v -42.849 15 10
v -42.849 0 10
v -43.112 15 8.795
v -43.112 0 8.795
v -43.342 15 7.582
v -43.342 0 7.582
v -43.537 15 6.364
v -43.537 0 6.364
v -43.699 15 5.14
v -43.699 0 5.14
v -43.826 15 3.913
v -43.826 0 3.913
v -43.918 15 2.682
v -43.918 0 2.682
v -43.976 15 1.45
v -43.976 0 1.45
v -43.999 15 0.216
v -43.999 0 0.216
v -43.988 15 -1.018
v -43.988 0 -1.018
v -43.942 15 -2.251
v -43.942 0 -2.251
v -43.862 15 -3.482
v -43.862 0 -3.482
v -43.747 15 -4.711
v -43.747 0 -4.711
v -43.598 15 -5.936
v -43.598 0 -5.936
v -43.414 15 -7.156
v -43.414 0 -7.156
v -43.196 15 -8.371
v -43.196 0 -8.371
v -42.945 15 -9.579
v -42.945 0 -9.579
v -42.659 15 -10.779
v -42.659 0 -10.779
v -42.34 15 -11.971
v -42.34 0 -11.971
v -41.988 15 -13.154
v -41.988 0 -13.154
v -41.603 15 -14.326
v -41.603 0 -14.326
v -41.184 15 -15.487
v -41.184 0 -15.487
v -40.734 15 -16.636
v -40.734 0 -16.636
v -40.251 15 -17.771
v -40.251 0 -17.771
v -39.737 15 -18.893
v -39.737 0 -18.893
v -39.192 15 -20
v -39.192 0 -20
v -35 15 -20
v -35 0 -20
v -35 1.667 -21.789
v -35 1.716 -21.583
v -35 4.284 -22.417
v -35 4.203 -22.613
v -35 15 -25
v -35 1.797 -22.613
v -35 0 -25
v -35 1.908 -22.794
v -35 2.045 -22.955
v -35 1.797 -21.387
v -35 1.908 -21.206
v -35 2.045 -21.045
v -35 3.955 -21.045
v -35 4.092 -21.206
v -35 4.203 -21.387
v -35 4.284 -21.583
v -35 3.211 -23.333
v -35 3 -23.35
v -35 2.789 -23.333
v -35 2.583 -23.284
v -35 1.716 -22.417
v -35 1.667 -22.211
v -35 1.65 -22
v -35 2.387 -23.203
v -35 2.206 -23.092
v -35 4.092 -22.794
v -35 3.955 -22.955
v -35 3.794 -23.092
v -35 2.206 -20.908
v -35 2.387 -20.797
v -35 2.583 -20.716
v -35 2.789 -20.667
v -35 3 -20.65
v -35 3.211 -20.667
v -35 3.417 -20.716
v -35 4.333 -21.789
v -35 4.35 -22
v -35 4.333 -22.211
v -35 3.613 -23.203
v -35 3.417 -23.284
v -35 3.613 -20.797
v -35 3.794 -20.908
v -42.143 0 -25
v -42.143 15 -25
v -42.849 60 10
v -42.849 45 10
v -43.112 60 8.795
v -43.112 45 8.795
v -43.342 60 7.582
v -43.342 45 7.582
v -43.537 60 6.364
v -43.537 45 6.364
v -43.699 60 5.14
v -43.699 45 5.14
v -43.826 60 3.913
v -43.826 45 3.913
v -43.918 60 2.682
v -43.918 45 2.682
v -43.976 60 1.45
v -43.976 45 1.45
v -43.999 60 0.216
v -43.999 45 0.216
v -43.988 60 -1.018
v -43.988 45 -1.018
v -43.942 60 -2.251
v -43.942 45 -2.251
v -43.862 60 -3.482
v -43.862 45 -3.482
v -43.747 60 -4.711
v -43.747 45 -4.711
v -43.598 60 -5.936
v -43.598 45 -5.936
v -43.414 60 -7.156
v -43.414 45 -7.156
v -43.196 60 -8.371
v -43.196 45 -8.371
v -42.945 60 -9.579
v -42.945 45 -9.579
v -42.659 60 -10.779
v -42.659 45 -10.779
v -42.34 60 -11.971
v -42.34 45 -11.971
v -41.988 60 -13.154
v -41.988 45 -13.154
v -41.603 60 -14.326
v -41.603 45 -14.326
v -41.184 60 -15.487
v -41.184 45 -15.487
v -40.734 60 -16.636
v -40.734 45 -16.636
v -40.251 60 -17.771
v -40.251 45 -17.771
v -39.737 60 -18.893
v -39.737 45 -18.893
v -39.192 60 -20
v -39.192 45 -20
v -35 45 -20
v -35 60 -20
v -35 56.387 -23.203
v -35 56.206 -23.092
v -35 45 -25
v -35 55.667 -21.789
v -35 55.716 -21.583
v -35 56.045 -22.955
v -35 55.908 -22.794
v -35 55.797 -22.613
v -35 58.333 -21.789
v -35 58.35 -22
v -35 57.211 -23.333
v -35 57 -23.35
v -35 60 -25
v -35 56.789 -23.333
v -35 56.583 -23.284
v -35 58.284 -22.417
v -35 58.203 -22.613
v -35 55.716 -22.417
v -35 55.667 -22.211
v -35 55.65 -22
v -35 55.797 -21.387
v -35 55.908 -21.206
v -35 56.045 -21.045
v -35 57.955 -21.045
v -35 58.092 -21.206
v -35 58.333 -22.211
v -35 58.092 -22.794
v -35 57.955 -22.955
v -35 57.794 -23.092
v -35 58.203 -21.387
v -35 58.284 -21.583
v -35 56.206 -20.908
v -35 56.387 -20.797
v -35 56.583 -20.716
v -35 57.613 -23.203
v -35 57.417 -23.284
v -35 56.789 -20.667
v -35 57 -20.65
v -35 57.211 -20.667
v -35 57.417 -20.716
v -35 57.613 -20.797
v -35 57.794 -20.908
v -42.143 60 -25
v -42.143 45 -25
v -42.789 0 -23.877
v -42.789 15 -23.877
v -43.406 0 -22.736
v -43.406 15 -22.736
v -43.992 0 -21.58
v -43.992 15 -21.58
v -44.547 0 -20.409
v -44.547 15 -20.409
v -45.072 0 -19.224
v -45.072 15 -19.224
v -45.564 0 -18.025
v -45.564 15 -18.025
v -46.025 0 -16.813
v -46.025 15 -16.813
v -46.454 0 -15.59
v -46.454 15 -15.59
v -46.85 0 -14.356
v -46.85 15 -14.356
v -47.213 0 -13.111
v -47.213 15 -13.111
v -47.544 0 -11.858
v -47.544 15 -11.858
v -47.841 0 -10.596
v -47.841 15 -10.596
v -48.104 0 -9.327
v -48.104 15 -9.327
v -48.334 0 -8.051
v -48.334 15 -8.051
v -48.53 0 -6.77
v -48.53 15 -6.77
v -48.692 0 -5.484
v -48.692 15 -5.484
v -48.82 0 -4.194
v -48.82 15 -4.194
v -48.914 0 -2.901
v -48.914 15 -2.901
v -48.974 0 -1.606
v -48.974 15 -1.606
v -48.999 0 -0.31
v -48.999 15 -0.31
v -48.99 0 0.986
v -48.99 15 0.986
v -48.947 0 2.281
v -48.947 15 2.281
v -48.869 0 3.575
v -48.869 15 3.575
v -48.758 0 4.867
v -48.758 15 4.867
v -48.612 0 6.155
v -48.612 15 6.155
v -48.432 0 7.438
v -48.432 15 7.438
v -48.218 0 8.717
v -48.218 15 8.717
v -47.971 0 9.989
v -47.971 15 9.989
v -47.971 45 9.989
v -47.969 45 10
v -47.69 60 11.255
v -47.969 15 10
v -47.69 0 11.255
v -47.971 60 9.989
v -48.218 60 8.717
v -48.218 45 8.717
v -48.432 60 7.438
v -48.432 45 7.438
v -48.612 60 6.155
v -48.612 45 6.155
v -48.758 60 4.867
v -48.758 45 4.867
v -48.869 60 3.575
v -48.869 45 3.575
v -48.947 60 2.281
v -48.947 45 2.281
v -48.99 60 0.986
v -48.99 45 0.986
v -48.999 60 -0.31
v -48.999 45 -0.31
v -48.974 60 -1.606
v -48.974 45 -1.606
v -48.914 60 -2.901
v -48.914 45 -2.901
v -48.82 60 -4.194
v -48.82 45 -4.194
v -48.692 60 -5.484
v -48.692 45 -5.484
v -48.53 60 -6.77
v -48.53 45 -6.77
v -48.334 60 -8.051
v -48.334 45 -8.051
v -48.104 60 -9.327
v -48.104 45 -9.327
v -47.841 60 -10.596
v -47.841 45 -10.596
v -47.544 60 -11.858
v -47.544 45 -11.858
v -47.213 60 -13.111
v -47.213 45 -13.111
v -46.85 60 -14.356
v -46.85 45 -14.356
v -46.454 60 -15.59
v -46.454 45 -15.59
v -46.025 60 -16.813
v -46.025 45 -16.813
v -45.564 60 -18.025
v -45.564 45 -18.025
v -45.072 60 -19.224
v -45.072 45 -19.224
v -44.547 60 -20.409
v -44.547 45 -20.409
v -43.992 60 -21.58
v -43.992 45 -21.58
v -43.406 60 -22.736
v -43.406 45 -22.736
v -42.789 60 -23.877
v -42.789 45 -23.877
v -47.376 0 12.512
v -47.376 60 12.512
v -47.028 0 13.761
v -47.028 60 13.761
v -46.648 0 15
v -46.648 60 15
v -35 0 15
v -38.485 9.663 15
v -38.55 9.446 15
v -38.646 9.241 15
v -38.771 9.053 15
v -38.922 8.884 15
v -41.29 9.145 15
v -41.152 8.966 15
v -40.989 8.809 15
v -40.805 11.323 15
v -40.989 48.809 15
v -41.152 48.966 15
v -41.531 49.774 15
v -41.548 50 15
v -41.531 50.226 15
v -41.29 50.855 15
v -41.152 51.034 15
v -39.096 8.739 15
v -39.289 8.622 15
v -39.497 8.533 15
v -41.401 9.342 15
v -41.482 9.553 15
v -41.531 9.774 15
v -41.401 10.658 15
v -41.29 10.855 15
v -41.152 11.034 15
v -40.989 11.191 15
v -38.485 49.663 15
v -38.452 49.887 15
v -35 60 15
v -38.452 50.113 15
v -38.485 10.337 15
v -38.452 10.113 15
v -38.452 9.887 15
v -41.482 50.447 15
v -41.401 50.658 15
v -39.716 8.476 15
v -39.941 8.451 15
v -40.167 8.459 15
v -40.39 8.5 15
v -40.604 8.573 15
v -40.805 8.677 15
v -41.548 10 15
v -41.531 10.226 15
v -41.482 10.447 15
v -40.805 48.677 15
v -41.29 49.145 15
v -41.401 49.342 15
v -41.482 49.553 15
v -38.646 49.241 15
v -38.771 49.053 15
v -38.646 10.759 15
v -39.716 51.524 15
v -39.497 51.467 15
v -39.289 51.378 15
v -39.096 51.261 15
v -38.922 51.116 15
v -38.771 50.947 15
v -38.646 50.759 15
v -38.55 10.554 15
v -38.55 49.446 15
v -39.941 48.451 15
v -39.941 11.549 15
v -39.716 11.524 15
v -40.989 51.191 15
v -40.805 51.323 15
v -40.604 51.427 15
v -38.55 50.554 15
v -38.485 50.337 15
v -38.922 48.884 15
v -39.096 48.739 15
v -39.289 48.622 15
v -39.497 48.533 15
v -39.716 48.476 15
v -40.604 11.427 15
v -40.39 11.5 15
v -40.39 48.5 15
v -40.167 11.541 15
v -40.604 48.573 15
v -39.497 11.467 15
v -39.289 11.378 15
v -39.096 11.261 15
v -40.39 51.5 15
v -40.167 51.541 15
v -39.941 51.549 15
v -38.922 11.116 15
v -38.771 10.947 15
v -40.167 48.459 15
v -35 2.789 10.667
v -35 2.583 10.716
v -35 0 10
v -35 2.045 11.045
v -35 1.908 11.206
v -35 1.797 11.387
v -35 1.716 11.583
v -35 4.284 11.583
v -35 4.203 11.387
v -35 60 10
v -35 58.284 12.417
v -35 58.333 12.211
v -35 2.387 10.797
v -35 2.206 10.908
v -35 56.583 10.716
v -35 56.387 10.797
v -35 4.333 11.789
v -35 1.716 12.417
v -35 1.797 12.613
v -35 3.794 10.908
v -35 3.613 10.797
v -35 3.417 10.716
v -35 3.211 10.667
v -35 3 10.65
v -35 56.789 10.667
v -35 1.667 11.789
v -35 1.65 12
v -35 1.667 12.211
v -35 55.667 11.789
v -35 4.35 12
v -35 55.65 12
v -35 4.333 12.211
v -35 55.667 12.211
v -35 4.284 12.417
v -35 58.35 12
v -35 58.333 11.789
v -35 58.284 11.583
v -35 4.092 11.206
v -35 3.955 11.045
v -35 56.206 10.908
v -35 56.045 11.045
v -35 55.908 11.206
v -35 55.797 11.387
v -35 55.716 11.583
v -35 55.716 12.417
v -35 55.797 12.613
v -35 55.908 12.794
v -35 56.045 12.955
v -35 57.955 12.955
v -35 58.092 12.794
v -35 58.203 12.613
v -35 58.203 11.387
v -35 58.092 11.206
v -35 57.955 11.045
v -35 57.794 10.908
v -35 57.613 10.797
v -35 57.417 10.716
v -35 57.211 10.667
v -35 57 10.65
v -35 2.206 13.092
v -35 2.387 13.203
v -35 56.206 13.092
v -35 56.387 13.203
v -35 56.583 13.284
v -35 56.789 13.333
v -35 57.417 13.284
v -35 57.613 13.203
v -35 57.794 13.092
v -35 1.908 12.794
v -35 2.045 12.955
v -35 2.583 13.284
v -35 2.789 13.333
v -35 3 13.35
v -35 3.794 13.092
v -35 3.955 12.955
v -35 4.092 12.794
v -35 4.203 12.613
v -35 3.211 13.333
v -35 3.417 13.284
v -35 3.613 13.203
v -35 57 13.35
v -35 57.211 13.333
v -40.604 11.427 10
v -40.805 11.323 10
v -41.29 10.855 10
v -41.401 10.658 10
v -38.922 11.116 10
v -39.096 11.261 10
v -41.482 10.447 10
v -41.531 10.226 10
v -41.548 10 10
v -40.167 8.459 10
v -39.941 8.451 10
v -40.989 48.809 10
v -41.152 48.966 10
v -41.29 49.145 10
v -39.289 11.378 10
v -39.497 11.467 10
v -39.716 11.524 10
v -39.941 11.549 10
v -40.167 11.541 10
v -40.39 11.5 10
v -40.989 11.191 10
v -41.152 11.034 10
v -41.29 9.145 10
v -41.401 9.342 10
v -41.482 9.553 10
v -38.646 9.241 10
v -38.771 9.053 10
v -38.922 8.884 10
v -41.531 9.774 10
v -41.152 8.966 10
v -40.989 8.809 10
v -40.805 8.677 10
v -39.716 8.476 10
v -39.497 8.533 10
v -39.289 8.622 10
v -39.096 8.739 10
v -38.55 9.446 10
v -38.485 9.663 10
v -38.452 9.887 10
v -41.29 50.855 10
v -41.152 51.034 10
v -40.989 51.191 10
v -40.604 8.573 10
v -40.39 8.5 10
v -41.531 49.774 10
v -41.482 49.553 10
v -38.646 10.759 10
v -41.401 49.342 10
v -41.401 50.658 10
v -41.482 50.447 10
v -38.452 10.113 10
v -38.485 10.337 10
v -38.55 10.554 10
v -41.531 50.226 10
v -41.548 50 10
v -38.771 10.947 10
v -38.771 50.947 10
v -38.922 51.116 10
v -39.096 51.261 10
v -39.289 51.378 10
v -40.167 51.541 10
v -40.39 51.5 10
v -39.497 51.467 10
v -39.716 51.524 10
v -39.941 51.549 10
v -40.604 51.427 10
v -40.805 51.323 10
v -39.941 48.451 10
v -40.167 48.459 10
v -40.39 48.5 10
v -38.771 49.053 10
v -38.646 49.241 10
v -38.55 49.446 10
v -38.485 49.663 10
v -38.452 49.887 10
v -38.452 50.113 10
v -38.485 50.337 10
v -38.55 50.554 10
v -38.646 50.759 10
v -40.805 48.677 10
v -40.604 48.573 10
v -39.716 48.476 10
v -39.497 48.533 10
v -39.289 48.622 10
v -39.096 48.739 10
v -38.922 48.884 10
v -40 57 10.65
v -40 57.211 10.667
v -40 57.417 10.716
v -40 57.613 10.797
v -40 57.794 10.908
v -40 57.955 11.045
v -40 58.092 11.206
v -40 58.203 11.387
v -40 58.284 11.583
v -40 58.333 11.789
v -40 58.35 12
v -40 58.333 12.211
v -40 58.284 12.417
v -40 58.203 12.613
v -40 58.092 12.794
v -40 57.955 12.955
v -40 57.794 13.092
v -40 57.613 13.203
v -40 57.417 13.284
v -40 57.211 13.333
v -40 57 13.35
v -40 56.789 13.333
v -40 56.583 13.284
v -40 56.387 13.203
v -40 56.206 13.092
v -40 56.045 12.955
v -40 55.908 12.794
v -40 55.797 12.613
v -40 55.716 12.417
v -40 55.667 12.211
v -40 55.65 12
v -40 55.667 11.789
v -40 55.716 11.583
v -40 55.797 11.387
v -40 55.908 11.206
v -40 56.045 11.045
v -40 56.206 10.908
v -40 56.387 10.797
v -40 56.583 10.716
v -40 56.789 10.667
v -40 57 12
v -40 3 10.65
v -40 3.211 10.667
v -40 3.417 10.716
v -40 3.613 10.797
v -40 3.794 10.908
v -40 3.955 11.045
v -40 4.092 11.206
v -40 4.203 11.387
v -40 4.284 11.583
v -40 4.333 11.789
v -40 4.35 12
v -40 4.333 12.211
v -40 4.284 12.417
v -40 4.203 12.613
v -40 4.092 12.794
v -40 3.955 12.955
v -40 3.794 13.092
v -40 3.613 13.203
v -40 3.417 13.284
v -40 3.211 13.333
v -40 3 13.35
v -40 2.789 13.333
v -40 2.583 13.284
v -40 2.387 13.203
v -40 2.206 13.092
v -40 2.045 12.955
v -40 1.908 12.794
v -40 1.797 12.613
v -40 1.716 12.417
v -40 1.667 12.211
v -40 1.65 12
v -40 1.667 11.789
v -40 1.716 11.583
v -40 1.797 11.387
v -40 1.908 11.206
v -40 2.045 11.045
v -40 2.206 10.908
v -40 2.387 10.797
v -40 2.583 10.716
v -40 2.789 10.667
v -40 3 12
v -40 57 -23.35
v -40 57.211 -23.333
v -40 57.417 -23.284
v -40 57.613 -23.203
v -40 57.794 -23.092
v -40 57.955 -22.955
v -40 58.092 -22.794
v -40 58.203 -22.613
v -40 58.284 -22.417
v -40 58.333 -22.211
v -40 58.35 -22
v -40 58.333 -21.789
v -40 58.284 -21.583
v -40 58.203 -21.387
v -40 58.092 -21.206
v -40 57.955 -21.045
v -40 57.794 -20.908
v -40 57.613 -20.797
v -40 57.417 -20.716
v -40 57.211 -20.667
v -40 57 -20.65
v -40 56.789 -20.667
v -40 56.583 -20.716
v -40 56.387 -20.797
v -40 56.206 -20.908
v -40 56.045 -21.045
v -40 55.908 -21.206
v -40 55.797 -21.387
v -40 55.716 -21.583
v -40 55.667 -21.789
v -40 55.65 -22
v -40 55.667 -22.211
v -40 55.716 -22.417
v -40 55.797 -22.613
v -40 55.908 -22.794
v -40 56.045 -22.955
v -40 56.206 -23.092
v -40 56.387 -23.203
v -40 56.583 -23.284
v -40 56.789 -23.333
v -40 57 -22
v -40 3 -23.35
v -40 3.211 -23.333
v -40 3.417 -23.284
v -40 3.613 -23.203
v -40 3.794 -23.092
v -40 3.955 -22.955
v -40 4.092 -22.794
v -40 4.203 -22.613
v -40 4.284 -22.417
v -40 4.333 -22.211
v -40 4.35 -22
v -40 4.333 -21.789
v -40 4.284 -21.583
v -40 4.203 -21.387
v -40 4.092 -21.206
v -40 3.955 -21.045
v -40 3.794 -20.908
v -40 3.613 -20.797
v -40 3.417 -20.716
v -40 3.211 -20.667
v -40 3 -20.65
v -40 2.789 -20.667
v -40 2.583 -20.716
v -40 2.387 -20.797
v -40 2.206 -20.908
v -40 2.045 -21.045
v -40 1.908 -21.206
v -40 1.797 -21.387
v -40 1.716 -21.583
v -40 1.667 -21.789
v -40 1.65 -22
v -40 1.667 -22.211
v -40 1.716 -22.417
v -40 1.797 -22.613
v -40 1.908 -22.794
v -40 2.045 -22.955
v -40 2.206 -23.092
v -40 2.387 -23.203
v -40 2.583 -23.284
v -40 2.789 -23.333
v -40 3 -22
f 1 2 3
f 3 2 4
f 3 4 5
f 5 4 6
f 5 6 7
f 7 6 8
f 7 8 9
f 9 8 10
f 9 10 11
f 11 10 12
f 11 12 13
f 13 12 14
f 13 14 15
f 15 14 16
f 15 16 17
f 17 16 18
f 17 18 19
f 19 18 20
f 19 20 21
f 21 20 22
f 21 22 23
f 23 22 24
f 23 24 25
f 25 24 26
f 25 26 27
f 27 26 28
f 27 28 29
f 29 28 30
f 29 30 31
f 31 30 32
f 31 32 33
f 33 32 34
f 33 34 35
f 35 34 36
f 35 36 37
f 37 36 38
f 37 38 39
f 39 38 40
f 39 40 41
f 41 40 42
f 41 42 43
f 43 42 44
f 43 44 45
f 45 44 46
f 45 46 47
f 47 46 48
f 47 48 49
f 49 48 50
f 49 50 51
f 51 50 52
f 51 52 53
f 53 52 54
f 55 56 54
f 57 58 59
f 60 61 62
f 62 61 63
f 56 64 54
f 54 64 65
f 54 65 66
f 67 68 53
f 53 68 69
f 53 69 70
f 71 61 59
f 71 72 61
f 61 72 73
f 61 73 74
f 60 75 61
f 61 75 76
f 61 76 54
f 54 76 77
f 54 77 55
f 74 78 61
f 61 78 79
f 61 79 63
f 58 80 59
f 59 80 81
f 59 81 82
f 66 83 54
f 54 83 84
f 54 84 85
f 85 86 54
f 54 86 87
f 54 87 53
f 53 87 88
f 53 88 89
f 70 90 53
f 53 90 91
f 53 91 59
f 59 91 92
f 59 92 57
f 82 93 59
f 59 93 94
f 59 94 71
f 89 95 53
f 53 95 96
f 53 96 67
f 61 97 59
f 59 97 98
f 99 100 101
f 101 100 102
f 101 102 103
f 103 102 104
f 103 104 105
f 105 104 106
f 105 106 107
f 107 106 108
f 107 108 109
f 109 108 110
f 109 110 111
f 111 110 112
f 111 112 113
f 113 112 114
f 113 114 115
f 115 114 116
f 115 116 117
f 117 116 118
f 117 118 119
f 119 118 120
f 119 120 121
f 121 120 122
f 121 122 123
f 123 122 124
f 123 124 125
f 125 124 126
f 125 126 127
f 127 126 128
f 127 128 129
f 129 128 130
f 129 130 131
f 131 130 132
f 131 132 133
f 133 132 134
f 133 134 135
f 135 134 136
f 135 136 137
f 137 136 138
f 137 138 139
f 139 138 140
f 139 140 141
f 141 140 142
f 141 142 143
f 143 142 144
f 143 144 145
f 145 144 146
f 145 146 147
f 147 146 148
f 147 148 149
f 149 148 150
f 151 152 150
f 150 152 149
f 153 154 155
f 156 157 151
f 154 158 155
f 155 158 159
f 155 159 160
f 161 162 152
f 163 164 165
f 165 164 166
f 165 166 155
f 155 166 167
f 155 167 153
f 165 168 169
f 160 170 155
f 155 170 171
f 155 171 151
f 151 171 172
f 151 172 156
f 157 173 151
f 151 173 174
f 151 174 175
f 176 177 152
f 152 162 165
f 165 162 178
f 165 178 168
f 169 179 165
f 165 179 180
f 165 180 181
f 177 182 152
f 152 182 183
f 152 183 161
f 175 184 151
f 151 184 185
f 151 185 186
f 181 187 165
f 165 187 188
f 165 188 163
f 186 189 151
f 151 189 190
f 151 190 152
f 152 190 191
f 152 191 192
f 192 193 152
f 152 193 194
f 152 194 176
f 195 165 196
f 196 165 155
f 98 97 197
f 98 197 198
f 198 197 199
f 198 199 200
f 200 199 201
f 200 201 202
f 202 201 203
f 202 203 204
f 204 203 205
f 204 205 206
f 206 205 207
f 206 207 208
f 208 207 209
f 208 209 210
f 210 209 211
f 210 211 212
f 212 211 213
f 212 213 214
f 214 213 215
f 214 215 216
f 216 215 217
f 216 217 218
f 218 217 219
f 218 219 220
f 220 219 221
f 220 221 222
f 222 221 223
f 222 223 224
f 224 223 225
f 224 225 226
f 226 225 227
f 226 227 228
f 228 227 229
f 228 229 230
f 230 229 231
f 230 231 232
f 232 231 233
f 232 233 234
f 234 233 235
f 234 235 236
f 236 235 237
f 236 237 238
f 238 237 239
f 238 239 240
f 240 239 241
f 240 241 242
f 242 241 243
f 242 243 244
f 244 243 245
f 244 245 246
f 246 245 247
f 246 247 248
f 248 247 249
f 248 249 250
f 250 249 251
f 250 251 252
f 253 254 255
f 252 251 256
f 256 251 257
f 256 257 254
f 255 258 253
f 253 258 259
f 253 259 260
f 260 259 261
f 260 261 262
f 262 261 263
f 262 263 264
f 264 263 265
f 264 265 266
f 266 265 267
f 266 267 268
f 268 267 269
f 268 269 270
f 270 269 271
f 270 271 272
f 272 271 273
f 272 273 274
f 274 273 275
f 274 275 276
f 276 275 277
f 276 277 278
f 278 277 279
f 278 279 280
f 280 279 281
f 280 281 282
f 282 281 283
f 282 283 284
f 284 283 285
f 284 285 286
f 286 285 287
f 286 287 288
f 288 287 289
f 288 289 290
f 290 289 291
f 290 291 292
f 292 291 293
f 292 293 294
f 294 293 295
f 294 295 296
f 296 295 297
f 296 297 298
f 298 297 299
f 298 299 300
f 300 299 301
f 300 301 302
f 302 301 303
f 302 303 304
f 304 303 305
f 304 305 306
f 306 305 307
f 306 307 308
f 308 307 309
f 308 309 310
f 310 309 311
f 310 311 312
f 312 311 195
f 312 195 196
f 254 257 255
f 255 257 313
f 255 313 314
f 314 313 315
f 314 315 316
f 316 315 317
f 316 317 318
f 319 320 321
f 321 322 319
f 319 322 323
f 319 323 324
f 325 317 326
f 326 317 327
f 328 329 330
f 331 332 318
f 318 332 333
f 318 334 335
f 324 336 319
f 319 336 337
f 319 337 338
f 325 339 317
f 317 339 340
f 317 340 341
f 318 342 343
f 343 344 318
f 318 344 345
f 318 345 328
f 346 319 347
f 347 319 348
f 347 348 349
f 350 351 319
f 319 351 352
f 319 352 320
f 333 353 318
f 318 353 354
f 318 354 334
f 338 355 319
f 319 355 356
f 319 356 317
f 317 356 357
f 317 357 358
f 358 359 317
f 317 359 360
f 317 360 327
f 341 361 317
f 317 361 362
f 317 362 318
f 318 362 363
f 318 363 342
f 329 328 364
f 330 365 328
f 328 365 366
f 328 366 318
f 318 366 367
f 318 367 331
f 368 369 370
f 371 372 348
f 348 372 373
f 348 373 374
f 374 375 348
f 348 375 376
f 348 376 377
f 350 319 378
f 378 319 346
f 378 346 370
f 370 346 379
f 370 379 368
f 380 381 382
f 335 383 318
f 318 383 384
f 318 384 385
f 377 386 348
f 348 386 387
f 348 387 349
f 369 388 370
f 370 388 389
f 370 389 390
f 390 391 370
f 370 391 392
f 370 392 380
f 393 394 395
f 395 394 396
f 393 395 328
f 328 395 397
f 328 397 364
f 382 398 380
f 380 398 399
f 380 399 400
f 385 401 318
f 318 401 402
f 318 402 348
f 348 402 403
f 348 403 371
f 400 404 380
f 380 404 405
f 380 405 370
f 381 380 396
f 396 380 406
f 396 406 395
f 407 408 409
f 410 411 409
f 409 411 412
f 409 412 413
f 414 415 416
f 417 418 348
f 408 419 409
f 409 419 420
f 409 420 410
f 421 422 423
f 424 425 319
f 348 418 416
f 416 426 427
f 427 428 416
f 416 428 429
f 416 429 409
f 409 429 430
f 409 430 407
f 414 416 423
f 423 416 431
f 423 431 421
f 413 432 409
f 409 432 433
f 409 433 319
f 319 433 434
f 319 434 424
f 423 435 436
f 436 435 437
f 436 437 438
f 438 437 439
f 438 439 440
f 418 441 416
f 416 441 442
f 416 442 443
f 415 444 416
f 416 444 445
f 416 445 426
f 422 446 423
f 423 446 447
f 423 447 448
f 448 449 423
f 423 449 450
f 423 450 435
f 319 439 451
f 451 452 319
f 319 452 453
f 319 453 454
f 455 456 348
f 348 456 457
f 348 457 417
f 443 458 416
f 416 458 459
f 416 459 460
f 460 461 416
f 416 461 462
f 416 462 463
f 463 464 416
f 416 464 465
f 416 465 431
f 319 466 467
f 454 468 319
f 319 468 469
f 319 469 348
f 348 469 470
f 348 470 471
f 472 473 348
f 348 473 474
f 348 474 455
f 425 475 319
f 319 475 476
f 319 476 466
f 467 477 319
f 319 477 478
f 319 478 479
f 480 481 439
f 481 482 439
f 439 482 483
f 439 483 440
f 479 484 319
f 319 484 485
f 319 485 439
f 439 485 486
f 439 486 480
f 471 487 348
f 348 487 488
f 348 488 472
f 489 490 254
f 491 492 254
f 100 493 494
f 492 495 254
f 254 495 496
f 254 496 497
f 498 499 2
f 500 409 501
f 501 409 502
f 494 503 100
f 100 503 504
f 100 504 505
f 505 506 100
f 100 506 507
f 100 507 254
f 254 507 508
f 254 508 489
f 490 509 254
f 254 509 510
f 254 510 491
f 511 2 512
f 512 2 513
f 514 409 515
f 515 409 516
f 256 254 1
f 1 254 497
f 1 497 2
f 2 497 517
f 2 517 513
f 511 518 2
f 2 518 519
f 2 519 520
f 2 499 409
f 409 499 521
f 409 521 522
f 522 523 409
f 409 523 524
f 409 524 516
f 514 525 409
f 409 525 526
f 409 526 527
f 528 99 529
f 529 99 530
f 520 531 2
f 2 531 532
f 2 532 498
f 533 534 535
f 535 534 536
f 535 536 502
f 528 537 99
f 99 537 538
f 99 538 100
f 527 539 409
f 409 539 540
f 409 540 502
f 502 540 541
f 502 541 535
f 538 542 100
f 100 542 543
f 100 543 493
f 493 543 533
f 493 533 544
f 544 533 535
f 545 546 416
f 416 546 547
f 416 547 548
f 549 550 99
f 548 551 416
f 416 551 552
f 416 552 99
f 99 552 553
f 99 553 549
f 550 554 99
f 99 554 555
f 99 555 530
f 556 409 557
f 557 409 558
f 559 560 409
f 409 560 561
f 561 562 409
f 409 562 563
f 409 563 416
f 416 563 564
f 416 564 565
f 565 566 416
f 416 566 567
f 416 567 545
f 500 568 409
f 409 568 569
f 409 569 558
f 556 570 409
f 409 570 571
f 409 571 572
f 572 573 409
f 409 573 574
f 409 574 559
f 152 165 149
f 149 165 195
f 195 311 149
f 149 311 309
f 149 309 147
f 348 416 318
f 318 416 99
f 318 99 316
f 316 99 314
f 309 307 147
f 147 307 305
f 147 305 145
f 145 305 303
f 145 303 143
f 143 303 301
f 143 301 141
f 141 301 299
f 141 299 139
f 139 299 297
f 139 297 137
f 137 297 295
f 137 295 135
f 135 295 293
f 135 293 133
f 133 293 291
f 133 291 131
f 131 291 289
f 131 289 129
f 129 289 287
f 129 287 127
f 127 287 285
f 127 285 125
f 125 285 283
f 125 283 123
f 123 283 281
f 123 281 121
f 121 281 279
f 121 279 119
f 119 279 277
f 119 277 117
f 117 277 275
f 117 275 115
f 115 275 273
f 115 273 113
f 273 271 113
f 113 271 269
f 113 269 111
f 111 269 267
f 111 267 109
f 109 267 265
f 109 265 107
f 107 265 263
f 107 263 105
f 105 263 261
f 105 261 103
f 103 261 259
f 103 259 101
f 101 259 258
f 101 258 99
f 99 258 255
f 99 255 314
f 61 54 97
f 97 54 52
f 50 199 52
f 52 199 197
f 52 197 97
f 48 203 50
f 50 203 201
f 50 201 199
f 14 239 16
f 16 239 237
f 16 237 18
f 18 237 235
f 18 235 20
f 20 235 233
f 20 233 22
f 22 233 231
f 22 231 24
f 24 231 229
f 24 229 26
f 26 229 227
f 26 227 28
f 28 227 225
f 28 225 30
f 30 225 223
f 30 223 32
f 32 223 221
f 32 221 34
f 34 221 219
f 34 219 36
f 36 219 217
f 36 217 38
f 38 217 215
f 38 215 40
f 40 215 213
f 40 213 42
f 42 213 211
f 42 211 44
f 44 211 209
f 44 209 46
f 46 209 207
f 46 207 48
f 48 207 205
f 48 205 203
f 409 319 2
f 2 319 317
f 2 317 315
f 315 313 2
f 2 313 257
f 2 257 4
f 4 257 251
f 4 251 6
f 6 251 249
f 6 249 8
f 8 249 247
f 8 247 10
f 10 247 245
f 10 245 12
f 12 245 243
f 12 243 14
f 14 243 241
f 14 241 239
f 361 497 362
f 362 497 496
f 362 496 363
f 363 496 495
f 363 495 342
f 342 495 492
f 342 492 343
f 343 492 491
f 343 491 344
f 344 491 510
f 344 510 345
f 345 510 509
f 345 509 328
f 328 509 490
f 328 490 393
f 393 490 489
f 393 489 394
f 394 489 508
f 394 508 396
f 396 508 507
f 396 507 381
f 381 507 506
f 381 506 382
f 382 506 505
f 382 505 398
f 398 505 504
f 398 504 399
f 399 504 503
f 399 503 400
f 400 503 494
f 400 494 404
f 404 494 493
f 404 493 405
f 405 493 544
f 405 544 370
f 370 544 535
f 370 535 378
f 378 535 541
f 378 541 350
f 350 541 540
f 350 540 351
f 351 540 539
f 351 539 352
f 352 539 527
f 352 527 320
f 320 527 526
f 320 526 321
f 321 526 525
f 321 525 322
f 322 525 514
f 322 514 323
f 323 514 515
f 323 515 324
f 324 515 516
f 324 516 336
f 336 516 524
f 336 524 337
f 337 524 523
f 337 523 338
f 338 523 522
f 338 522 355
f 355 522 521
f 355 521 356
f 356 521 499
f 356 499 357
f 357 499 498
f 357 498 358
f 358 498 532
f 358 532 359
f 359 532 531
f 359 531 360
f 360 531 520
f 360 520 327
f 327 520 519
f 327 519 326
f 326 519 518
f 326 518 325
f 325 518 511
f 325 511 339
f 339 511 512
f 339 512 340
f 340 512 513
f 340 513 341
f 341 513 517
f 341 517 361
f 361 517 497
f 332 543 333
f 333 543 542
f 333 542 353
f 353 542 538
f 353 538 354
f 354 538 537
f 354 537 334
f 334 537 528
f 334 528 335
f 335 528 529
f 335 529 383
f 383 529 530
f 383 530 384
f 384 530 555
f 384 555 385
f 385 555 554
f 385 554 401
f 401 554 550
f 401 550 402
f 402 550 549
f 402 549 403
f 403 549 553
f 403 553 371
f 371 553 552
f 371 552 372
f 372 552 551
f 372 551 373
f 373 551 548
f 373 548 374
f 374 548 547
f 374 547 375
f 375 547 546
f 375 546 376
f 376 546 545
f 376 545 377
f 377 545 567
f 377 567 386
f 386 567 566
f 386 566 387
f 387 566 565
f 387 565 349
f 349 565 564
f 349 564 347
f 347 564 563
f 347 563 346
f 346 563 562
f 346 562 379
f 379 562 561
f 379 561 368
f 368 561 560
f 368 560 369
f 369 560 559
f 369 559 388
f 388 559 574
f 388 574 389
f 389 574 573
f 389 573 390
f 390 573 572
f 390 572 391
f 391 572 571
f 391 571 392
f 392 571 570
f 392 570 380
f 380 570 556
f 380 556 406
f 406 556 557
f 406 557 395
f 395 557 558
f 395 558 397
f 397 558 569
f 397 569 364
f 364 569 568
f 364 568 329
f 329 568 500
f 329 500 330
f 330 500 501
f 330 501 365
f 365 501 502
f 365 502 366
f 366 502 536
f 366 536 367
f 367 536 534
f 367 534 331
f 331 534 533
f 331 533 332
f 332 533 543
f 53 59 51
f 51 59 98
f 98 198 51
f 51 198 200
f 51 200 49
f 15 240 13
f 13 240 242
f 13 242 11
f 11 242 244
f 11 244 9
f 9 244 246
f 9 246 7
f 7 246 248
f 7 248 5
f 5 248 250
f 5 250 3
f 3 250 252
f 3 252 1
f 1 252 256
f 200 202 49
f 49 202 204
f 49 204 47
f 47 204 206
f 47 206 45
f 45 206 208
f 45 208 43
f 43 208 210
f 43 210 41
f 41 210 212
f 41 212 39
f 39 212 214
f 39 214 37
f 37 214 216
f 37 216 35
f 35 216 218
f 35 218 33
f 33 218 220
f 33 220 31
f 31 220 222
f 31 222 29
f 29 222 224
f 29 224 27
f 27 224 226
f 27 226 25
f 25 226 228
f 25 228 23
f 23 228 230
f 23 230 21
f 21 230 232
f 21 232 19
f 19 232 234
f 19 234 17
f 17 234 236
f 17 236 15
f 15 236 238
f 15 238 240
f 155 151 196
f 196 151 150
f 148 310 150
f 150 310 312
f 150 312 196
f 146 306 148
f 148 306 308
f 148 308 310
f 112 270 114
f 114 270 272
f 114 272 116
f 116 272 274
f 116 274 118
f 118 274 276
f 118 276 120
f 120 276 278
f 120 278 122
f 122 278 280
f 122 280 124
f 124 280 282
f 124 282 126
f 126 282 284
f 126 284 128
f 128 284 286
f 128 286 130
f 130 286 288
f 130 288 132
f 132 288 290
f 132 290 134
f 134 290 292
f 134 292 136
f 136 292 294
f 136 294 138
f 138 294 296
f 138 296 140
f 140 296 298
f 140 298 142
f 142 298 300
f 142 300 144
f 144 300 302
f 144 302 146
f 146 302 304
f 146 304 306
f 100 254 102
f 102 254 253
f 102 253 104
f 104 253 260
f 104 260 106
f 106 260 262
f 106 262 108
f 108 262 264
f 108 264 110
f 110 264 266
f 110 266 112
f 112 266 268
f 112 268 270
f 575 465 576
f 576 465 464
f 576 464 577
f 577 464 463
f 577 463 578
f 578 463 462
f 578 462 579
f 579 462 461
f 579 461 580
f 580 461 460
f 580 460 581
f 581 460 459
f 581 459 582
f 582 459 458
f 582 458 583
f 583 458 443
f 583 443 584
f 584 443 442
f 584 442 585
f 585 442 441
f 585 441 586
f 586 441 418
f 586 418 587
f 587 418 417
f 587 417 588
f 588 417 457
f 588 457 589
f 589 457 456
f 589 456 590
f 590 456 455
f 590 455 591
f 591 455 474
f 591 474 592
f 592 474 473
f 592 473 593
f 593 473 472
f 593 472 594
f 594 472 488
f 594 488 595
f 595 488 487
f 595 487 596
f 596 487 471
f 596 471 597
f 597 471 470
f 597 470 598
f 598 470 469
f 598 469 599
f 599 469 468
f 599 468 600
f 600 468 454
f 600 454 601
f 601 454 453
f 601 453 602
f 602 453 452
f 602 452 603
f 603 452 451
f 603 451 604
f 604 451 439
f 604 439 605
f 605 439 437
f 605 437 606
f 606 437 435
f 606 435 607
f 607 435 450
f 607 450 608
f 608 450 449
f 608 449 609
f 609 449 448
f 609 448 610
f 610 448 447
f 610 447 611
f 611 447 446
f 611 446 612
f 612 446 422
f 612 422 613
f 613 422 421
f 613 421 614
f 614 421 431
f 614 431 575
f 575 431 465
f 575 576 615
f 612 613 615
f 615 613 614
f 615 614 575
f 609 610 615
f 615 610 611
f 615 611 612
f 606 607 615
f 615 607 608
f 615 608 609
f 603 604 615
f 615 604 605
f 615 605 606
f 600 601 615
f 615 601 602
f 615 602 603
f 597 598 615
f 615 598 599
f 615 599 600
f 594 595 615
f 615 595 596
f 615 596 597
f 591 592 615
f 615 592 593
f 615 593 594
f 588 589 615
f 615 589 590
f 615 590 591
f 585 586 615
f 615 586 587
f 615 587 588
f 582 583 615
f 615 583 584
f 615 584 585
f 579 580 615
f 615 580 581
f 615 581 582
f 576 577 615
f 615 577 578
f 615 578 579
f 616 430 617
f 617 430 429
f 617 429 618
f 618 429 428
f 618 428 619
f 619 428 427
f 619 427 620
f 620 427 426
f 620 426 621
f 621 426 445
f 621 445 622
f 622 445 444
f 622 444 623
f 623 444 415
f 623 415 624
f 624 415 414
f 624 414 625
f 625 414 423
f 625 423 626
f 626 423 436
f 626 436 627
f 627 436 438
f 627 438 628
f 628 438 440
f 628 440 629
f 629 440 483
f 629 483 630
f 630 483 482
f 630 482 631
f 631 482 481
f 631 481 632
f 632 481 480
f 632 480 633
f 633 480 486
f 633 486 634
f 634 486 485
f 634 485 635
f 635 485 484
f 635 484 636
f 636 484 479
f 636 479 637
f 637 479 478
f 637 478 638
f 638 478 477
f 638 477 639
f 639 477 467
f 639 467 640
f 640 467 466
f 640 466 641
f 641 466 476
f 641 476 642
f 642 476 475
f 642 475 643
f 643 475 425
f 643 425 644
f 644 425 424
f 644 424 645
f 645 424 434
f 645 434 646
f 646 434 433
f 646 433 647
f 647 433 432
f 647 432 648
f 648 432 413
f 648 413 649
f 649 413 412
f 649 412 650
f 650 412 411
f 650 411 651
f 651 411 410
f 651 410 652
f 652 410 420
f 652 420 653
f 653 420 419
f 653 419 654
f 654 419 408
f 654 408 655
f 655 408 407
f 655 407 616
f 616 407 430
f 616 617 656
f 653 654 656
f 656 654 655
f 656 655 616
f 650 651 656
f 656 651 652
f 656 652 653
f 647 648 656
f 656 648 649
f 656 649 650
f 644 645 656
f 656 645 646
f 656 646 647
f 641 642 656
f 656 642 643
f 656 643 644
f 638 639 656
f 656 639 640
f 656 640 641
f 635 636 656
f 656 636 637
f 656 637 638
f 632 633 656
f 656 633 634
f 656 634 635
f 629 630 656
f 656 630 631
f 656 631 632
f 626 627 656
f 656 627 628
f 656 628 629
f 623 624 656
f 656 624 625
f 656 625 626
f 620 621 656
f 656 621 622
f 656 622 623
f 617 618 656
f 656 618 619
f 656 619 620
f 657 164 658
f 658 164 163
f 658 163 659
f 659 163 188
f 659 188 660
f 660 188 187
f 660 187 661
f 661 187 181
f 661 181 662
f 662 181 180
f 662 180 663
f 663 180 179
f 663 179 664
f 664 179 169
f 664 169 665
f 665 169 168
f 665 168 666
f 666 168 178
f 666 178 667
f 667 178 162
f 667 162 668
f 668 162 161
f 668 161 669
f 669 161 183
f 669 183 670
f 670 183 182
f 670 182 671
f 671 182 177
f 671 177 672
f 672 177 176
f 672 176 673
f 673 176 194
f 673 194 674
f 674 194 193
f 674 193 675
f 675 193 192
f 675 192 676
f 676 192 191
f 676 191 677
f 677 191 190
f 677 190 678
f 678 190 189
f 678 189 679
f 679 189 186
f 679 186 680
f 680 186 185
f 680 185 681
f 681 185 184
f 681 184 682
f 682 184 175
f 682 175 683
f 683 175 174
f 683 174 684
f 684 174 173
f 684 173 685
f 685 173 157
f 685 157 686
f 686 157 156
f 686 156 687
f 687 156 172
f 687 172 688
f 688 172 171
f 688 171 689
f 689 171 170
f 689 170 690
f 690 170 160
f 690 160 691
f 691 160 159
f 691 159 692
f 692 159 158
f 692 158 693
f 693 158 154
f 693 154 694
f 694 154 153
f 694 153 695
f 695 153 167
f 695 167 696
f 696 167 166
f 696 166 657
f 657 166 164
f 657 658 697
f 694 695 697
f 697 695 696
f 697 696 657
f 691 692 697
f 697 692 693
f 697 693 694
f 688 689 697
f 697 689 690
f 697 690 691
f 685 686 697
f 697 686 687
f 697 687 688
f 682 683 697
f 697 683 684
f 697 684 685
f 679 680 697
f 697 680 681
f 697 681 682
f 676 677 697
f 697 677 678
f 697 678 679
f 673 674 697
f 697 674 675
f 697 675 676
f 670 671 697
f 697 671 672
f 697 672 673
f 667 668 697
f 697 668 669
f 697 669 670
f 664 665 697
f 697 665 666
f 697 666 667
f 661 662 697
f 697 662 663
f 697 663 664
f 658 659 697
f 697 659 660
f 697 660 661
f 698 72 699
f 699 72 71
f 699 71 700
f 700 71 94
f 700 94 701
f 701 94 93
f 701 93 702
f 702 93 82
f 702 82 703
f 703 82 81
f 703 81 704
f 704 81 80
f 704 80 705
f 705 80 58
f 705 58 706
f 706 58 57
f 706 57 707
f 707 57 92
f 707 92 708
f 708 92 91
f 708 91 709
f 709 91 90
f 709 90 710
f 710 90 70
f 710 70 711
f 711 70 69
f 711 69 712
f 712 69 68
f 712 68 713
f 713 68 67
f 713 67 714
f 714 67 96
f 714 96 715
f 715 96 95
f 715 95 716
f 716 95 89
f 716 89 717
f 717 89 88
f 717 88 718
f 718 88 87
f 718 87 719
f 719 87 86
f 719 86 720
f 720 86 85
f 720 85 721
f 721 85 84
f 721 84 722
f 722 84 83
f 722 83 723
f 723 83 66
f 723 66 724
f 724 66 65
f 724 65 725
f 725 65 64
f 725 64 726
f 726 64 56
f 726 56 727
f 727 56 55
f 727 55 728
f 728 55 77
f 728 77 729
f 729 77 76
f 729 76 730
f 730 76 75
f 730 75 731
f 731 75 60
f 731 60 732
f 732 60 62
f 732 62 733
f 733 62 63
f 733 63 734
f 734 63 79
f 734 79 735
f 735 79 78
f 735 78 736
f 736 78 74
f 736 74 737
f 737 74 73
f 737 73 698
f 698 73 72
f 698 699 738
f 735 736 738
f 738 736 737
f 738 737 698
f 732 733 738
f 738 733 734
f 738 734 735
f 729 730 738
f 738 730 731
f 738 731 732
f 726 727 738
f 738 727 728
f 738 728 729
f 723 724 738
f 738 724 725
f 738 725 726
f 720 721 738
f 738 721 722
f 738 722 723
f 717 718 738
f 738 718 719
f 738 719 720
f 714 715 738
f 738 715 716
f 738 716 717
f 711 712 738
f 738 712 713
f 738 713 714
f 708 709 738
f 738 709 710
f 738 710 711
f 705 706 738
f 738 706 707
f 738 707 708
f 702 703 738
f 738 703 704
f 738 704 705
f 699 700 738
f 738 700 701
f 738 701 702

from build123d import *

# Parameters (mm, degrees)
BOSS_EXTRUDE1_DEPTH = 60
SKETCH2_R           = 1.55
CUT_EXTRUDE1_DEPTH  = 6
SKETCH4_W           = 35
SKETCH4_H           = 30
CUT_EXTRUDE3_DEPTH  = 15
SKETCH5_R           = 1.35
CUT_EXTRUDE4_DEPTH  = 5


with BuildPart() as part:
    # Sketch1 → Boss-Extrude1 (new body)
    with BuildSketch(Plane(origin=(0, 0, 0), x_dir=(1, 0, 0), z_dir=(0, 1, 0))):
        with BuildLine():
            ThreePointArc((-42.142615011, 25), (-48.692157925, 5.483954466), (-46.647615159, -15))
            Line((-46.647615159, -15), (-41.36423576, -15))
            Line((-41.36423576, -15), (-35, -15))
            Line((-35, -15), (-35, -10))
            Line((-35, -10), (-42.848570571, -10))
            ThreePointArc((-42.848570571, -10), (-43.67673377, 5.323807579), (-39.191835885, 20))
            Line((-39.191835885, 20), (-35, 20))
            Line((-35, 20), (-35, 25))
            Line((-35, 25), (-36.20773398, 25))
            Line((-36.20773398, 25), (-42.142615011, 25))
        make_face()
    extrude(amount=BOSS_EXTRUDE1_DEPTH)

    # Sketch2 → Cut-Extrude1 (cut, through all)
    with BuildSketch(Plane(origin=(0, 0, 10), x_dir=(-1, 0, 0), z_dir=(0, 0, -1))):
        with Locations((39.997615159, 50)):
            Circle(SKETCH2_R)
        with Locations((39.997615159, 10)):
            Circle(SKETCH2_R)
    extrude(amount=-CUT_EXTRUDE1_DEPTH, mode=Mode.SUBTRACT)

    # Sketch4 → Cut-Extrude3 (cut, through all)
    with BuildSketch(Plane(origin=(-35, 0, 0), x_dir=(0, 0, -1), z_dir=(1, 0, 0))):
        with Locations((7.5, 30)):
            Rectangle(SKETCH4_W, SKETCH4_H)
    extrude(amount=-CUT_EXTRUDE3_DEPTH, mode=Mode.SUBTRACT)

    # Sketch5 → Cut-Extrude4 (cut)
    with BuildSketch(Plane(origin=(-35, 0, 0), x_dir=(0, 0, -1), z_dir=(1, 0, 0))):
        with Locations((-12, 57)):
            Circle(SKETCH5_R)
        with Locations((22, 57)):
            Circle(SKETCH5_R)
        with Locations((-12, 3)):
            Circle(SKETCH5_R)
        with Locations((22, 3)):
            Circle(SKETCH5_R)
    extrude(amount=-CUT_EXTRUDE4_DEPTH, mode=Mode.SUBTRACT)


solid = part.part
